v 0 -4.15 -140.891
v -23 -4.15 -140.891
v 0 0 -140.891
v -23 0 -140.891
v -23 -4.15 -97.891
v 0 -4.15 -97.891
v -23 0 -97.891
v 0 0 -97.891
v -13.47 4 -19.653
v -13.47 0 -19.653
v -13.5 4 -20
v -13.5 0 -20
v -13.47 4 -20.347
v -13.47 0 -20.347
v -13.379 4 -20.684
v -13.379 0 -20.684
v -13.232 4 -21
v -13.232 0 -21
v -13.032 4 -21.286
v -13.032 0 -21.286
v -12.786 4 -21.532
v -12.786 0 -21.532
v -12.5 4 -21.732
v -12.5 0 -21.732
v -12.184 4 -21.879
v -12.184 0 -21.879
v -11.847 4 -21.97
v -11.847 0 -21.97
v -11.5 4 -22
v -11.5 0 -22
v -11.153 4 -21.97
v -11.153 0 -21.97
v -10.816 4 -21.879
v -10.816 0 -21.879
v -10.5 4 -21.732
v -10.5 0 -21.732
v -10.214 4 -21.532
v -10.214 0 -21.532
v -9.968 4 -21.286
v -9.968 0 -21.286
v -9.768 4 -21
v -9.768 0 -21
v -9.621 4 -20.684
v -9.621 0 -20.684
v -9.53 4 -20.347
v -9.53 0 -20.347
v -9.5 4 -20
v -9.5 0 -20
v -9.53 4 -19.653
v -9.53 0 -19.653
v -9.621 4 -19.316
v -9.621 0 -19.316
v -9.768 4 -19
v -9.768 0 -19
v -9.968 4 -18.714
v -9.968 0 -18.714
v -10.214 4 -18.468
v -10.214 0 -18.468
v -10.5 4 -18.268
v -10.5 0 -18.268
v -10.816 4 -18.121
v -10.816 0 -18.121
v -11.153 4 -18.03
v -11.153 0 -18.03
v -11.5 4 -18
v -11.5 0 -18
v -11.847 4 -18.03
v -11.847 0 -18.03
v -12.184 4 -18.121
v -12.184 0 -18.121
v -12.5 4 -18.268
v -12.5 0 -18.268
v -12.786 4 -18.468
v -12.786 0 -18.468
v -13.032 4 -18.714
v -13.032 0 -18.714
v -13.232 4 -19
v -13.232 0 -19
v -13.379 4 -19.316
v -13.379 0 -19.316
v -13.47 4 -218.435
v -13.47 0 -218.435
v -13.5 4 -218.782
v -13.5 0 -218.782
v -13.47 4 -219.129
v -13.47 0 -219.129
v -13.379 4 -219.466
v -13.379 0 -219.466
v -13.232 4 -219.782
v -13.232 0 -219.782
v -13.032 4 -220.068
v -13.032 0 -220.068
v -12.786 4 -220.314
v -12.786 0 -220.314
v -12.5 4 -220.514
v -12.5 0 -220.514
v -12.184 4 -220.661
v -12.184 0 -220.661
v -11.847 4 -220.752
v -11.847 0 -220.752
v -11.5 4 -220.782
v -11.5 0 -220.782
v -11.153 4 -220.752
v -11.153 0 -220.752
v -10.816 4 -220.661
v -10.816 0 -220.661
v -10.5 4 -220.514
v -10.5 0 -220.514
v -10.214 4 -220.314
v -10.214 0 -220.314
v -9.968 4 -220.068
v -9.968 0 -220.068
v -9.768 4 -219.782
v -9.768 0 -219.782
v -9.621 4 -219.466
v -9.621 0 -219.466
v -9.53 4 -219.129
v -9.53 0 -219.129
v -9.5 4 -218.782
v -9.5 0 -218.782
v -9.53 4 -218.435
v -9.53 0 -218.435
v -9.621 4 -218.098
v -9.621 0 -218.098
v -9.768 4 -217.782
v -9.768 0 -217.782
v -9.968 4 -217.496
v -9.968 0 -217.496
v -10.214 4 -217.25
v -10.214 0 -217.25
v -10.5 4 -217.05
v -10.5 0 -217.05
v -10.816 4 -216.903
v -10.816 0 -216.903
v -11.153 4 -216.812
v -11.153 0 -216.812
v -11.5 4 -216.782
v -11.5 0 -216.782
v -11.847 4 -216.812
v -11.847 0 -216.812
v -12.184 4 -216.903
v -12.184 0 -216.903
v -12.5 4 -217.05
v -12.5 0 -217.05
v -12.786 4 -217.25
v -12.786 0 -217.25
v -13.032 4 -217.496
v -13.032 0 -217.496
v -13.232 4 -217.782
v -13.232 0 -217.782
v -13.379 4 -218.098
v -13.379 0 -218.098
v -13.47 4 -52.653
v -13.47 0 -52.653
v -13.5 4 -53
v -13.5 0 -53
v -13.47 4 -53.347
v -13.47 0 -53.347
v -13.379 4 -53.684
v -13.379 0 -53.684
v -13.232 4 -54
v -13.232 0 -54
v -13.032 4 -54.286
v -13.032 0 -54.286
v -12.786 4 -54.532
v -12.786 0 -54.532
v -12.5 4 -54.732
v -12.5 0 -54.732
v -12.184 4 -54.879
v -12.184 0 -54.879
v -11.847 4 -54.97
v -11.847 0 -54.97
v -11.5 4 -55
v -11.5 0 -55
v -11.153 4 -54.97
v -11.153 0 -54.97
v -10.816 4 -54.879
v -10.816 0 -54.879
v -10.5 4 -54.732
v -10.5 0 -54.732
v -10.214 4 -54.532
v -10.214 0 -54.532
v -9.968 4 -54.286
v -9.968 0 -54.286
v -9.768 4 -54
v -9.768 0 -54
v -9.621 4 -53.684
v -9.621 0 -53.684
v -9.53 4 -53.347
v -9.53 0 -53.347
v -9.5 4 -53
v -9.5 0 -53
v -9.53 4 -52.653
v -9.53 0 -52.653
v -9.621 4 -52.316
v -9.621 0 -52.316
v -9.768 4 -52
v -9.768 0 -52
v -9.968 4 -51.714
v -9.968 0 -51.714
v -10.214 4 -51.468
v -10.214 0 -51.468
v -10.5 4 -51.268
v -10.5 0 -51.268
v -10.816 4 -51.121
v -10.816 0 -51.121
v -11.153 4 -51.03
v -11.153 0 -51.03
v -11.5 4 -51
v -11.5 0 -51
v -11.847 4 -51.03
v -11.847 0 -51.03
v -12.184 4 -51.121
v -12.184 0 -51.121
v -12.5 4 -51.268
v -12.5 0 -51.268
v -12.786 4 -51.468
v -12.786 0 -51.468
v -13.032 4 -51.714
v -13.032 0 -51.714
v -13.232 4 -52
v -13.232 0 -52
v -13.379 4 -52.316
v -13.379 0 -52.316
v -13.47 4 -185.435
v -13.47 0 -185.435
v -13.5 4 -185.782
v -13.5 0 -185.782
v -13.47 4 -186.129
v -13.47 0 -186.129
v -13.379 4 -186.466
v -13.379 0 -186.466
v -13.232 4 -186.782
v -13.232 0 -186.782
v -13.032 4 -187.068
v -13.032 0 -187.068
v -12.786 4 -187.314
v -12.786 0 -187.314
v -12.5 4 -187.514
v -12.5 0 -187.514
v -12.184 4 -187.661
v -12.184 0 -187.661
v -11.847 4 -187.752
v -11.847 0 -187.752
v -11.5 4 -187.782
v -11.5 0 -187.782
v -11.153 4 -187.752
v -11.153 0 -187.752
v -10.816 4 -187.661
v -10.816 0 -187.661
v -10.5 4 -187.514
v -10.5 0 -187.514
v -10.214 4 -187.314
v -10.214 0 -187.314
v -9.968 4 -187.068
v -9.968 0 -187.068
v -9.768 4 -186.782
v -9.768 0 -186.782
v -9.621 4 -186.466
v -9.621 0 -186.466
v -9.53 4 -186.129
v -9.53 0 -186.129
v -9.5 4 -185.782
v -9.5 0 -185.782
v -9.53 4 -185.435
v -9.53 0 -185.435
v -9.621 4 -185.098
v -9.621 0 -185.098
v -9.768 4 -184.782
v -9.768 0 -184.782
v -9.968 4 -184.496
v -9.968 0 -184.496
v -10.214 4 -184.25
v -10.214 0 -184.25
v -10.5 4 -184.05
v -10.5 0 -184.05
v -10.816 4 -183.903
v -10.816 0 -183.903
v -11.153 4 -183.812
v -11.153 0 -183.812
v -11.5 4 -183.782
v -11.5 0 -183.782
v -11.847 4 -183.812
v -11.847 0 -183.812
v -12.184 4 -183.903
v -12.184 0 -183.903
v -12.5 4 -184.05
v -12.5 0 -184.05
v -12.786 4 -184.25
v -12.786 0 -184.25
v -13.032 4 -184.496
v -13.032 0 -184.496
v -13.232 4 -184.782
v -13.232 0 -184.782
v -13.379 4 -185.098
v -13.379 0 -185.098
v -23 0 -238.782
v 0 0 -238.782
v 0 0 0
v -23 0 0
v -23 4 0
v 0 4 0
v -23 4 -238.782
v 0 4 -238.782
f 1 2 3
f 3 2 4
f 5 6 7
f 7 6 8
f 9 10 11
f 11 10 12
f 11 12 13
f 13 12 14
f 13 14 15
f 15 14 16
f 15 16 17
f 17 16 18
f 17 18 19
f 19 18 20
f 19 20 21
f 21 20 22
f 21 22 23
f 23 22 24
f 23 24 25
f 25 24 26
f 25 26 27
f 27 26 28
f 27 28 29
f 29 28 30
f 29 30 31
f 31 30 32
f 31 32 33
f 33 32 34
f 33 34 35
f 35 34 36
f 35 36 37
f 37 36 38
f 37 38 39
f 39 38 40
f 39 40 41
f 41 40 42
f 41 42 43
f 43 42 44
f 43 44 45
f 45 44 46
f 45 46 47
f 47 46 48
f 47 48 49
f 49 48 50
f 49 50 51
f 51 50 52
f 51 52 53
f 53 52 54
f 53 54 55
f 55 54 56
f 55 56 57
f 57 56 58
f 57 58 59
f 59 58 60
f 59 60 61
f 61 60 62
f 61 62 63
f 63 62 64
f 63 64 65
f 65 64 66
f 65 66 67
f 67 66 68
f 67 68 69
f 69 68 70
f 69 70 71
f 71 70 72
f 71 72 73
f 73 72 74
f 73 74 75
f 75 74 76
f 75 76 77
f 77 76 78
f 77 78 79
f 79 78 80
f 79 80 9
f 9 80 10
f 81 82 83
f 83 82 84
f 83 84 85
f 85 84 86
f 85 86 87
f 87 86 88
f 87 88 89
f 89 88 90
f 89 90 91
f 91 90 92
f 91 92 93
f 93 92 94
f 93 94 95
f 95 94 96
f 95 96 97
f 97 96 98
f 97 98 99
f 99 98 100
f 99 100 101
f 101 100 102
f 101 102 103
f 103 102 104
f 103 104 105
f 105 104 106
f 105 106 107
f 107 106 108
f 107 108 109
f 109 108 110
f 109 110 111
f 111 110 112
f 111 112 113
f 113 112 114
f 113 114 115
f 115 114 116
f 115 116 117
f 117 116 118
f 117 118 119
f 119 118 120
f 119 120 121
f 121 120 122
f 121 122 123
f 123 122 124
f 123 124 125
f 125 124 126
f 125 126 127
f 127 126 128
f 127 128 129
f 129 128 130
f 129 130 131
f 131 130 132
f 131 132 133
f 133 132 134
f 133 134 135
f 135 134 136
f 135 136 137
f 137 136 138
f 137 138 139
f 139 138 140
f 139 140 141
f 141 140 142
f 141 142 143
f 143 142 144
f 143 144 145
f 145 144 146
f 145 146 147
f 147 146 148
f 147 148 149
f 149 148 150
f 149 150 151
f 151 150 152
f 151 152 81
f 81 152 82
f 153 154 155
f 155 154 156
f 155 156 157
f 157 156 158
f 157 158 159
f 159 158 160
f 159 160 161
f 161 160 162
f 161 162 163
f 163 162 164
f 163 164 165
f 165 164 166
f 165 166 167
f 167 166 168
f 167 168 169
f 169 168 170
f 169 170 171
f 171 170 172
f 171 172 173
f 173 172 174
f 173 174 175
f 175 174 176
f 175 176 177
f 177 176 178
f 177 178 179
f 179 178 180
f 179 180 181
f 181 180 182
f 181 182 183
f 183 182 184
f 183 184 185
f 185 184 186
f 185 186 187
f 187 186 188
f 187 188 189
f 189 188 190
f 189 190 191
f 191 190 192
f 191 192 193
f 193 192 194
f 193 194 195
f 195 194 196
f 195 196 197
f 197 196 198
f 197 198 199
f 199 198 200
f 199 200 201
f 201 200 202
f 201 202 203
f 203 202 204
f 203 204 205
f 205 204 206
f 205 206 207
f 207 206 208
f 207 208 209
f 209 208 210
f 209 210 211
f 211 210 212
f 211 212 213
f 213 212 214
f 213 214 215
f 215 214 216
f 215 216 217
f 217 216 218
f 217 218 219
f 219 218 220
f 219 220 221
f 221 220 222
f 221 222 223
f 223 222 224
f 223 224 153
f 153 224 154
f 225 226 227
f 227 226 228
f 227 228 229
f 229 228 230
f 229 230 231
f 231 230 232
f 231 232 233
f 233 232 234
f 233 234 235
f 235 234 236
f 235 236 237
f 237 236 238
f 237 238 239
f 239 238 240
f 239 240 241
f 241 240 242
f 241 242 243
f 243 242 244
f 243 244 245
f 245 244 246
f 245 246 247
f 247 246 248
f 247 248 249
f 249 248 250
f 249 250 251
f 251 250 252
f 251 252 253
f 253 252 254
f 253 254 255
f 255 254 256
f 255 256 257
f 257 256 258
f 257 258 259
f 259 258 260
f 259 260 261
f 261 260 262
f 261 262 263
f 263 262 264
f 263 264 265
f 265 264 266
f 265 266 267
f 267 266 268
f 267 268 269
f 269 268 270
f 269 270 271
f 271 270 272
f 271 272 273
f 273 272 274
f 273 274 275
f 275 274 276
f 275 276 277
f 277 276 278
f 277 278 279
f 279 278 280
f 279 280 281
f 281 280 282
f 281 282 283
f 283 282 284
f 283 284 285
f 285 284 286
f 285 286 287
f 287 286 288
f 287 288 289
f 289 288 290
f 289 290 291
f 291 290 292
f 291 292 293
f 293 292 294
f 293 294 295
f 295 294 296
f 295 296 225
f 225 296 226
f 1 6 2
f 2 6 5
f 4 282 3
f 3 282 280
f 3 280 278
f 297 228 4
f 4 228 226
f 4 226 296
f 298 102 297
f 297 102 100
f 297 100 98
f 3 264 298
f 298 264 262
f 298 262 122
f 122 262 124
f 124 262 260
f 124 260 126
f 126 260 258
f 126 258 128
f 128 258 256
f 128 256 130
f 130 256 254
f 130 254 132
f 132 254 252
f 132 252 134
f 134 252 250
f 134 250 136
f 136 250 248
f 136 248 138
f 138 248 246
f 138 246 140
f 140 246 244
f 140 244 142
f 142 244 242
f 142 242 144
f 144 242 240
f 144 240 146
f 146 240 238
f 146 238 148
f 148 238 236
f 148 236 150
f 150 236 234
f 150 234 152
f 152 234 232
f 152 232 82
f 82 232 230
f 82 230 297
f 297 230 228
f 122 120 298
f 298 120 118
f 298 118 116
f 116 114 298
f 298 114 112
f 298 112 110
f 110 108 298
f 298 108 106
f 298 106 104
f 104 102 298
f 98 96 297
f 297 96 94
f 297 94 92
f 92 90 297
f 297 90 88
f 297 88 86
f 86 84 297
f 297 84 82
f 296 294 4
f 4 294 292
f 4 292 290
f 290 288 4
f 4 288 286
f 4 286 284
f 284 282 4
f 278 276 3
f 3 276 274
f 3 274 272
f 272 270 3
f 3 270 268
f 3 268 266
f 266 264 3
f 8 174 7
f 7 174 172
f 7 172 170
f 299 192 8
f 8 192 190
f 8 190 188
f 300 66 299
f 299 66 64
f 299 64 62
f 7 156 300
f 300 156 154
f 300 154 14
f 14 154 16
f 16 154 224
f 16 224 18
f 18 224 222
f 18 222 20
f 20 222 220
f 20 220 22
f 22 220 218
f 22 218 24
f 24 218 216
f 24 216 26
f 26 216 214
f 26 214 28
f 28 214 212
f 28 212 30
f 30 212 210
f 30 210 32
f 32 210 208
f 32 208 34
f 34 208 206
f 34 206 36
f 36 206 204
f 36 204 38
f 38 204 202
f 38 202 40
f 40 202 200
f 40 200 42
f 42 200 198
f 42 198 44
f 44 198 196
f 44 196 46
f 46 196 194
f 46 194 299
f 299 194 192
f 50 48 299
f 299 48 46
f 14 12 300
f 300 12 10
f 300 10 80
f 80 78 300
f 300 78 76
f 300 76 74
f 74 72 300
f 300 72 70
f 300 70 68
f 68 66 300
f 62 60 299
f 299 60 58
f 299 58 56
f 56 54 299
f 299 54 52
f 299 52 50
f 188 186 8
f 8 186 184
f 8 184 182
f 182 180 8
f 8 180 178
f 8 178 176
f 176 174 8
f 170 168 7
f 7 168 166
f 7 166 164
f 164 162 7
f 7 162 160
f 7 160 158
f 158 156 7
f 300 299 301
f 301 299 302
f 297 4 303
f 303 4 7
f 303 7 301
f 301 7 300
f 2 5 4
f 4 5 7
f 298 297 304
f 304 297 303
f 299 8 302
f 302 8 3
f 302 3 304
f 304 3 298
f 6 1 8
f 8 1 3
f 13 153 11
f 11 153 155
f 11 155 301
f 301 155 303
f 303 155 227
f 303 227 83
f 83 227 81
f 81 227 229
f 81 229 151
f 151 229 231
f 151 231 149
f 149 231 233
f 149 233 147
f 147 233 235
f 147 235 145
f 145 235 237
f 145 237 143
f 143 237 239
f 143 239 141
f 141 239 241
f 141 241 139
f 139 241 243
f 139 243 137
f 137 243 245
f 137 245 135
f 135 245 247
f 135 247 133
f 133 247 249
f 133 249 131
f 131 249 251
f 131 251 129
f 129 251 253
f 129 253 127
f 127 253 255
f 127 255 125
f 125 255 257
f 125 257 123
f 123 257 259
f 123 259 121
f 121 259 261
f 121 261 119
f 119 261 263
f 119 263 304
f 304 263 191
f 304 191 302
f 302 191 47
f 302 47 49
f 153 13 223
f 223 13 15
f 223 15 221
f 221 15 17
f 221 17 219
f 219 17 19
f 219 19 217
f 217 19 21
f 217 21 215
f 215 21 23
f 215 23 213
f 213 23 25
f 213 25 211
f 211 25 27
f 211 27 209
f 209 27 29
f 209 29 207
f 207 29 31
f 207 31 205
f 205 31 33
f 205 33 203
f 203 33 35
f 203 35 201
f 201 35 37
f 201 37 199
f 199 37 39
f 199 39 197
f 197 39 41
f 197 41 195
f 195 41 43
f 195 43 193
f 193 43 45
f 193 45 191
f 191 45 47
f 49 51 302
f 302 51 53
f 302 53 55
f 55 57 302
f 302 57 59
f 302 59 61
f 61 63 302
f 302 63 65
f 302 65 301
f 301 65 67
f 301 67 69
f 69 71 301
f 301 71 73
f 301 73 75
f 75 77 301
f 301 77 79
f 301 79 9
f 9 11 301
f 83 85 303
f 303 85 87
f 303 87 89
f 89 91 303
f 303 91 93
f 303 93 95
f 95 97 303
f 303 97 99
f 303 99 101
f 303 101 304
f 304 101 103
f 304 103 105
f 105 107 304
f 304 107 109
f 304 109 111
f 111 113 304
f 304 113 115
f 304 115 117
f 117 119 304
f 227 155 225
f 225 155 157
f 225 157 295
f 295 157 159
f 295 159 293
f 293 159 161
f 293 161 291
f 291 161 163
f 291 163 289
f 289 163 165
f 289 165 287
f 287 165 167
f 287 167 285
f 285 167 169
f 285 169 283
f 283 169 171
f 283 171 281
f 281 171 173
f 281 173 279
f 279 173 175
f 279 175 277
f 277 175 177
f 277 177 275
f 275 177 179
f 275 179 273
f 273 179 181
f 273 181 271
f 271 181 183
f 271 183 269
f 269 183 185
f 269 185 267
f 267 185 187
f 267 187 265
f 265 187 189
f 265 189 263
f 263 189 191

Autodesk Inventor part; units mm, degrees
ref_plane "YZ Plane" through (0, 0, 0) normal (1, 0, 0) x (0, 1, 0)
ref_plane "XZ Plane" through (0, 0, 0) normal (0, 1, 0) x (-1, 0, 0)
ref_plane "XY Plane" through (0, 0, 0) normal (0, 0, 1) x (1, 0, 0)
sketch "Sketch1" plane through (0, 0, 0) normal (0, 1, 0) x (-1, 0, 0)
  line L0 (23, 0) -> (0, 0)
  line L1 (0, 0) -> (0, -238.782)
  line L2 (0, -238.782) -> (23, -238.782)
  line L3 (23, -238.782) -> (23, 0)
  dimension "d2" = 238.782
extrude "Extrusion1" add sketch "Sketch1" along normal blind 4
sketch "Sketch3" plane through (0, 0, 0) normal (0, -1, 0) x (1, 0, 0)
  line L0 (0, 0) -> (0, -238.782) projected
  line L1 (0, -119.391) -> (0, -136.891)
  line L2 (0, -136.891) -> (0, -101.891)
  line L3 (0, -101.891) -> (-23, -101.891)
  line L4 (-23, -238.782) -> (-23, 0) projected
  line L5 (-23, -101.891) -> (-23, -136.891)
  line L6 (0, -136.891) -> (-23, -136.891)
  dimension "d5" = 17.5
  dimension "d6" = 35
extrude "Extrusion2" add sketch "Sketch3" along normal blind 4.15
sketch "Sketch4" plane through (0, 0, 0) normal (0, -1, 0) x (1, 0, 0)
  circle A0 centre (-11.5, -185.782) radius 2 projected
  circle A1 centre (-11.5, -218.782) radius 2 projected
  circle A2 centre (-11.5, -20) radius 2 projected
  circle A3 centre (-11.5, -53) radius 2 projected
  point P0 (0, 0)
extrude "Extrusion3" cut sketch "Sketch4" against normal up to surface (4 mm away)
sketch "Sketch5" plane through (-23, 0, -101.891) normal (0, 0, 1) x (1, 0, 0)
  line L0 (0, 0) -> (23, 0) projected
  line L1 (0, 0) -> (0, -4.15) projected
  line L2 (23, -4.15) -> (0, -4.15) projected
  line L3 (23, 0) -> (23, -4.15) projected
  point P0 (23, 0)
extrude "Extrusion4" add sketch "Sketch5" along normal blind 4
sketch "Sketch6" plane through (0, 0, -136.891) normal (0, 0, -1) x (-1, 0, 0)
  line L0 (0, 0) -> (23, 0) projected
  line L1 (0, 0) -> (0, -4.15) projected
  line L2 (23, -4.15) -> (0, -4.15) projected
  line L3 (23, 0) -> (23, -4.15) projected
extrude "Extrusion5" add sketch "Sketch6" along normal blind 4
properties part number "battery_support"
